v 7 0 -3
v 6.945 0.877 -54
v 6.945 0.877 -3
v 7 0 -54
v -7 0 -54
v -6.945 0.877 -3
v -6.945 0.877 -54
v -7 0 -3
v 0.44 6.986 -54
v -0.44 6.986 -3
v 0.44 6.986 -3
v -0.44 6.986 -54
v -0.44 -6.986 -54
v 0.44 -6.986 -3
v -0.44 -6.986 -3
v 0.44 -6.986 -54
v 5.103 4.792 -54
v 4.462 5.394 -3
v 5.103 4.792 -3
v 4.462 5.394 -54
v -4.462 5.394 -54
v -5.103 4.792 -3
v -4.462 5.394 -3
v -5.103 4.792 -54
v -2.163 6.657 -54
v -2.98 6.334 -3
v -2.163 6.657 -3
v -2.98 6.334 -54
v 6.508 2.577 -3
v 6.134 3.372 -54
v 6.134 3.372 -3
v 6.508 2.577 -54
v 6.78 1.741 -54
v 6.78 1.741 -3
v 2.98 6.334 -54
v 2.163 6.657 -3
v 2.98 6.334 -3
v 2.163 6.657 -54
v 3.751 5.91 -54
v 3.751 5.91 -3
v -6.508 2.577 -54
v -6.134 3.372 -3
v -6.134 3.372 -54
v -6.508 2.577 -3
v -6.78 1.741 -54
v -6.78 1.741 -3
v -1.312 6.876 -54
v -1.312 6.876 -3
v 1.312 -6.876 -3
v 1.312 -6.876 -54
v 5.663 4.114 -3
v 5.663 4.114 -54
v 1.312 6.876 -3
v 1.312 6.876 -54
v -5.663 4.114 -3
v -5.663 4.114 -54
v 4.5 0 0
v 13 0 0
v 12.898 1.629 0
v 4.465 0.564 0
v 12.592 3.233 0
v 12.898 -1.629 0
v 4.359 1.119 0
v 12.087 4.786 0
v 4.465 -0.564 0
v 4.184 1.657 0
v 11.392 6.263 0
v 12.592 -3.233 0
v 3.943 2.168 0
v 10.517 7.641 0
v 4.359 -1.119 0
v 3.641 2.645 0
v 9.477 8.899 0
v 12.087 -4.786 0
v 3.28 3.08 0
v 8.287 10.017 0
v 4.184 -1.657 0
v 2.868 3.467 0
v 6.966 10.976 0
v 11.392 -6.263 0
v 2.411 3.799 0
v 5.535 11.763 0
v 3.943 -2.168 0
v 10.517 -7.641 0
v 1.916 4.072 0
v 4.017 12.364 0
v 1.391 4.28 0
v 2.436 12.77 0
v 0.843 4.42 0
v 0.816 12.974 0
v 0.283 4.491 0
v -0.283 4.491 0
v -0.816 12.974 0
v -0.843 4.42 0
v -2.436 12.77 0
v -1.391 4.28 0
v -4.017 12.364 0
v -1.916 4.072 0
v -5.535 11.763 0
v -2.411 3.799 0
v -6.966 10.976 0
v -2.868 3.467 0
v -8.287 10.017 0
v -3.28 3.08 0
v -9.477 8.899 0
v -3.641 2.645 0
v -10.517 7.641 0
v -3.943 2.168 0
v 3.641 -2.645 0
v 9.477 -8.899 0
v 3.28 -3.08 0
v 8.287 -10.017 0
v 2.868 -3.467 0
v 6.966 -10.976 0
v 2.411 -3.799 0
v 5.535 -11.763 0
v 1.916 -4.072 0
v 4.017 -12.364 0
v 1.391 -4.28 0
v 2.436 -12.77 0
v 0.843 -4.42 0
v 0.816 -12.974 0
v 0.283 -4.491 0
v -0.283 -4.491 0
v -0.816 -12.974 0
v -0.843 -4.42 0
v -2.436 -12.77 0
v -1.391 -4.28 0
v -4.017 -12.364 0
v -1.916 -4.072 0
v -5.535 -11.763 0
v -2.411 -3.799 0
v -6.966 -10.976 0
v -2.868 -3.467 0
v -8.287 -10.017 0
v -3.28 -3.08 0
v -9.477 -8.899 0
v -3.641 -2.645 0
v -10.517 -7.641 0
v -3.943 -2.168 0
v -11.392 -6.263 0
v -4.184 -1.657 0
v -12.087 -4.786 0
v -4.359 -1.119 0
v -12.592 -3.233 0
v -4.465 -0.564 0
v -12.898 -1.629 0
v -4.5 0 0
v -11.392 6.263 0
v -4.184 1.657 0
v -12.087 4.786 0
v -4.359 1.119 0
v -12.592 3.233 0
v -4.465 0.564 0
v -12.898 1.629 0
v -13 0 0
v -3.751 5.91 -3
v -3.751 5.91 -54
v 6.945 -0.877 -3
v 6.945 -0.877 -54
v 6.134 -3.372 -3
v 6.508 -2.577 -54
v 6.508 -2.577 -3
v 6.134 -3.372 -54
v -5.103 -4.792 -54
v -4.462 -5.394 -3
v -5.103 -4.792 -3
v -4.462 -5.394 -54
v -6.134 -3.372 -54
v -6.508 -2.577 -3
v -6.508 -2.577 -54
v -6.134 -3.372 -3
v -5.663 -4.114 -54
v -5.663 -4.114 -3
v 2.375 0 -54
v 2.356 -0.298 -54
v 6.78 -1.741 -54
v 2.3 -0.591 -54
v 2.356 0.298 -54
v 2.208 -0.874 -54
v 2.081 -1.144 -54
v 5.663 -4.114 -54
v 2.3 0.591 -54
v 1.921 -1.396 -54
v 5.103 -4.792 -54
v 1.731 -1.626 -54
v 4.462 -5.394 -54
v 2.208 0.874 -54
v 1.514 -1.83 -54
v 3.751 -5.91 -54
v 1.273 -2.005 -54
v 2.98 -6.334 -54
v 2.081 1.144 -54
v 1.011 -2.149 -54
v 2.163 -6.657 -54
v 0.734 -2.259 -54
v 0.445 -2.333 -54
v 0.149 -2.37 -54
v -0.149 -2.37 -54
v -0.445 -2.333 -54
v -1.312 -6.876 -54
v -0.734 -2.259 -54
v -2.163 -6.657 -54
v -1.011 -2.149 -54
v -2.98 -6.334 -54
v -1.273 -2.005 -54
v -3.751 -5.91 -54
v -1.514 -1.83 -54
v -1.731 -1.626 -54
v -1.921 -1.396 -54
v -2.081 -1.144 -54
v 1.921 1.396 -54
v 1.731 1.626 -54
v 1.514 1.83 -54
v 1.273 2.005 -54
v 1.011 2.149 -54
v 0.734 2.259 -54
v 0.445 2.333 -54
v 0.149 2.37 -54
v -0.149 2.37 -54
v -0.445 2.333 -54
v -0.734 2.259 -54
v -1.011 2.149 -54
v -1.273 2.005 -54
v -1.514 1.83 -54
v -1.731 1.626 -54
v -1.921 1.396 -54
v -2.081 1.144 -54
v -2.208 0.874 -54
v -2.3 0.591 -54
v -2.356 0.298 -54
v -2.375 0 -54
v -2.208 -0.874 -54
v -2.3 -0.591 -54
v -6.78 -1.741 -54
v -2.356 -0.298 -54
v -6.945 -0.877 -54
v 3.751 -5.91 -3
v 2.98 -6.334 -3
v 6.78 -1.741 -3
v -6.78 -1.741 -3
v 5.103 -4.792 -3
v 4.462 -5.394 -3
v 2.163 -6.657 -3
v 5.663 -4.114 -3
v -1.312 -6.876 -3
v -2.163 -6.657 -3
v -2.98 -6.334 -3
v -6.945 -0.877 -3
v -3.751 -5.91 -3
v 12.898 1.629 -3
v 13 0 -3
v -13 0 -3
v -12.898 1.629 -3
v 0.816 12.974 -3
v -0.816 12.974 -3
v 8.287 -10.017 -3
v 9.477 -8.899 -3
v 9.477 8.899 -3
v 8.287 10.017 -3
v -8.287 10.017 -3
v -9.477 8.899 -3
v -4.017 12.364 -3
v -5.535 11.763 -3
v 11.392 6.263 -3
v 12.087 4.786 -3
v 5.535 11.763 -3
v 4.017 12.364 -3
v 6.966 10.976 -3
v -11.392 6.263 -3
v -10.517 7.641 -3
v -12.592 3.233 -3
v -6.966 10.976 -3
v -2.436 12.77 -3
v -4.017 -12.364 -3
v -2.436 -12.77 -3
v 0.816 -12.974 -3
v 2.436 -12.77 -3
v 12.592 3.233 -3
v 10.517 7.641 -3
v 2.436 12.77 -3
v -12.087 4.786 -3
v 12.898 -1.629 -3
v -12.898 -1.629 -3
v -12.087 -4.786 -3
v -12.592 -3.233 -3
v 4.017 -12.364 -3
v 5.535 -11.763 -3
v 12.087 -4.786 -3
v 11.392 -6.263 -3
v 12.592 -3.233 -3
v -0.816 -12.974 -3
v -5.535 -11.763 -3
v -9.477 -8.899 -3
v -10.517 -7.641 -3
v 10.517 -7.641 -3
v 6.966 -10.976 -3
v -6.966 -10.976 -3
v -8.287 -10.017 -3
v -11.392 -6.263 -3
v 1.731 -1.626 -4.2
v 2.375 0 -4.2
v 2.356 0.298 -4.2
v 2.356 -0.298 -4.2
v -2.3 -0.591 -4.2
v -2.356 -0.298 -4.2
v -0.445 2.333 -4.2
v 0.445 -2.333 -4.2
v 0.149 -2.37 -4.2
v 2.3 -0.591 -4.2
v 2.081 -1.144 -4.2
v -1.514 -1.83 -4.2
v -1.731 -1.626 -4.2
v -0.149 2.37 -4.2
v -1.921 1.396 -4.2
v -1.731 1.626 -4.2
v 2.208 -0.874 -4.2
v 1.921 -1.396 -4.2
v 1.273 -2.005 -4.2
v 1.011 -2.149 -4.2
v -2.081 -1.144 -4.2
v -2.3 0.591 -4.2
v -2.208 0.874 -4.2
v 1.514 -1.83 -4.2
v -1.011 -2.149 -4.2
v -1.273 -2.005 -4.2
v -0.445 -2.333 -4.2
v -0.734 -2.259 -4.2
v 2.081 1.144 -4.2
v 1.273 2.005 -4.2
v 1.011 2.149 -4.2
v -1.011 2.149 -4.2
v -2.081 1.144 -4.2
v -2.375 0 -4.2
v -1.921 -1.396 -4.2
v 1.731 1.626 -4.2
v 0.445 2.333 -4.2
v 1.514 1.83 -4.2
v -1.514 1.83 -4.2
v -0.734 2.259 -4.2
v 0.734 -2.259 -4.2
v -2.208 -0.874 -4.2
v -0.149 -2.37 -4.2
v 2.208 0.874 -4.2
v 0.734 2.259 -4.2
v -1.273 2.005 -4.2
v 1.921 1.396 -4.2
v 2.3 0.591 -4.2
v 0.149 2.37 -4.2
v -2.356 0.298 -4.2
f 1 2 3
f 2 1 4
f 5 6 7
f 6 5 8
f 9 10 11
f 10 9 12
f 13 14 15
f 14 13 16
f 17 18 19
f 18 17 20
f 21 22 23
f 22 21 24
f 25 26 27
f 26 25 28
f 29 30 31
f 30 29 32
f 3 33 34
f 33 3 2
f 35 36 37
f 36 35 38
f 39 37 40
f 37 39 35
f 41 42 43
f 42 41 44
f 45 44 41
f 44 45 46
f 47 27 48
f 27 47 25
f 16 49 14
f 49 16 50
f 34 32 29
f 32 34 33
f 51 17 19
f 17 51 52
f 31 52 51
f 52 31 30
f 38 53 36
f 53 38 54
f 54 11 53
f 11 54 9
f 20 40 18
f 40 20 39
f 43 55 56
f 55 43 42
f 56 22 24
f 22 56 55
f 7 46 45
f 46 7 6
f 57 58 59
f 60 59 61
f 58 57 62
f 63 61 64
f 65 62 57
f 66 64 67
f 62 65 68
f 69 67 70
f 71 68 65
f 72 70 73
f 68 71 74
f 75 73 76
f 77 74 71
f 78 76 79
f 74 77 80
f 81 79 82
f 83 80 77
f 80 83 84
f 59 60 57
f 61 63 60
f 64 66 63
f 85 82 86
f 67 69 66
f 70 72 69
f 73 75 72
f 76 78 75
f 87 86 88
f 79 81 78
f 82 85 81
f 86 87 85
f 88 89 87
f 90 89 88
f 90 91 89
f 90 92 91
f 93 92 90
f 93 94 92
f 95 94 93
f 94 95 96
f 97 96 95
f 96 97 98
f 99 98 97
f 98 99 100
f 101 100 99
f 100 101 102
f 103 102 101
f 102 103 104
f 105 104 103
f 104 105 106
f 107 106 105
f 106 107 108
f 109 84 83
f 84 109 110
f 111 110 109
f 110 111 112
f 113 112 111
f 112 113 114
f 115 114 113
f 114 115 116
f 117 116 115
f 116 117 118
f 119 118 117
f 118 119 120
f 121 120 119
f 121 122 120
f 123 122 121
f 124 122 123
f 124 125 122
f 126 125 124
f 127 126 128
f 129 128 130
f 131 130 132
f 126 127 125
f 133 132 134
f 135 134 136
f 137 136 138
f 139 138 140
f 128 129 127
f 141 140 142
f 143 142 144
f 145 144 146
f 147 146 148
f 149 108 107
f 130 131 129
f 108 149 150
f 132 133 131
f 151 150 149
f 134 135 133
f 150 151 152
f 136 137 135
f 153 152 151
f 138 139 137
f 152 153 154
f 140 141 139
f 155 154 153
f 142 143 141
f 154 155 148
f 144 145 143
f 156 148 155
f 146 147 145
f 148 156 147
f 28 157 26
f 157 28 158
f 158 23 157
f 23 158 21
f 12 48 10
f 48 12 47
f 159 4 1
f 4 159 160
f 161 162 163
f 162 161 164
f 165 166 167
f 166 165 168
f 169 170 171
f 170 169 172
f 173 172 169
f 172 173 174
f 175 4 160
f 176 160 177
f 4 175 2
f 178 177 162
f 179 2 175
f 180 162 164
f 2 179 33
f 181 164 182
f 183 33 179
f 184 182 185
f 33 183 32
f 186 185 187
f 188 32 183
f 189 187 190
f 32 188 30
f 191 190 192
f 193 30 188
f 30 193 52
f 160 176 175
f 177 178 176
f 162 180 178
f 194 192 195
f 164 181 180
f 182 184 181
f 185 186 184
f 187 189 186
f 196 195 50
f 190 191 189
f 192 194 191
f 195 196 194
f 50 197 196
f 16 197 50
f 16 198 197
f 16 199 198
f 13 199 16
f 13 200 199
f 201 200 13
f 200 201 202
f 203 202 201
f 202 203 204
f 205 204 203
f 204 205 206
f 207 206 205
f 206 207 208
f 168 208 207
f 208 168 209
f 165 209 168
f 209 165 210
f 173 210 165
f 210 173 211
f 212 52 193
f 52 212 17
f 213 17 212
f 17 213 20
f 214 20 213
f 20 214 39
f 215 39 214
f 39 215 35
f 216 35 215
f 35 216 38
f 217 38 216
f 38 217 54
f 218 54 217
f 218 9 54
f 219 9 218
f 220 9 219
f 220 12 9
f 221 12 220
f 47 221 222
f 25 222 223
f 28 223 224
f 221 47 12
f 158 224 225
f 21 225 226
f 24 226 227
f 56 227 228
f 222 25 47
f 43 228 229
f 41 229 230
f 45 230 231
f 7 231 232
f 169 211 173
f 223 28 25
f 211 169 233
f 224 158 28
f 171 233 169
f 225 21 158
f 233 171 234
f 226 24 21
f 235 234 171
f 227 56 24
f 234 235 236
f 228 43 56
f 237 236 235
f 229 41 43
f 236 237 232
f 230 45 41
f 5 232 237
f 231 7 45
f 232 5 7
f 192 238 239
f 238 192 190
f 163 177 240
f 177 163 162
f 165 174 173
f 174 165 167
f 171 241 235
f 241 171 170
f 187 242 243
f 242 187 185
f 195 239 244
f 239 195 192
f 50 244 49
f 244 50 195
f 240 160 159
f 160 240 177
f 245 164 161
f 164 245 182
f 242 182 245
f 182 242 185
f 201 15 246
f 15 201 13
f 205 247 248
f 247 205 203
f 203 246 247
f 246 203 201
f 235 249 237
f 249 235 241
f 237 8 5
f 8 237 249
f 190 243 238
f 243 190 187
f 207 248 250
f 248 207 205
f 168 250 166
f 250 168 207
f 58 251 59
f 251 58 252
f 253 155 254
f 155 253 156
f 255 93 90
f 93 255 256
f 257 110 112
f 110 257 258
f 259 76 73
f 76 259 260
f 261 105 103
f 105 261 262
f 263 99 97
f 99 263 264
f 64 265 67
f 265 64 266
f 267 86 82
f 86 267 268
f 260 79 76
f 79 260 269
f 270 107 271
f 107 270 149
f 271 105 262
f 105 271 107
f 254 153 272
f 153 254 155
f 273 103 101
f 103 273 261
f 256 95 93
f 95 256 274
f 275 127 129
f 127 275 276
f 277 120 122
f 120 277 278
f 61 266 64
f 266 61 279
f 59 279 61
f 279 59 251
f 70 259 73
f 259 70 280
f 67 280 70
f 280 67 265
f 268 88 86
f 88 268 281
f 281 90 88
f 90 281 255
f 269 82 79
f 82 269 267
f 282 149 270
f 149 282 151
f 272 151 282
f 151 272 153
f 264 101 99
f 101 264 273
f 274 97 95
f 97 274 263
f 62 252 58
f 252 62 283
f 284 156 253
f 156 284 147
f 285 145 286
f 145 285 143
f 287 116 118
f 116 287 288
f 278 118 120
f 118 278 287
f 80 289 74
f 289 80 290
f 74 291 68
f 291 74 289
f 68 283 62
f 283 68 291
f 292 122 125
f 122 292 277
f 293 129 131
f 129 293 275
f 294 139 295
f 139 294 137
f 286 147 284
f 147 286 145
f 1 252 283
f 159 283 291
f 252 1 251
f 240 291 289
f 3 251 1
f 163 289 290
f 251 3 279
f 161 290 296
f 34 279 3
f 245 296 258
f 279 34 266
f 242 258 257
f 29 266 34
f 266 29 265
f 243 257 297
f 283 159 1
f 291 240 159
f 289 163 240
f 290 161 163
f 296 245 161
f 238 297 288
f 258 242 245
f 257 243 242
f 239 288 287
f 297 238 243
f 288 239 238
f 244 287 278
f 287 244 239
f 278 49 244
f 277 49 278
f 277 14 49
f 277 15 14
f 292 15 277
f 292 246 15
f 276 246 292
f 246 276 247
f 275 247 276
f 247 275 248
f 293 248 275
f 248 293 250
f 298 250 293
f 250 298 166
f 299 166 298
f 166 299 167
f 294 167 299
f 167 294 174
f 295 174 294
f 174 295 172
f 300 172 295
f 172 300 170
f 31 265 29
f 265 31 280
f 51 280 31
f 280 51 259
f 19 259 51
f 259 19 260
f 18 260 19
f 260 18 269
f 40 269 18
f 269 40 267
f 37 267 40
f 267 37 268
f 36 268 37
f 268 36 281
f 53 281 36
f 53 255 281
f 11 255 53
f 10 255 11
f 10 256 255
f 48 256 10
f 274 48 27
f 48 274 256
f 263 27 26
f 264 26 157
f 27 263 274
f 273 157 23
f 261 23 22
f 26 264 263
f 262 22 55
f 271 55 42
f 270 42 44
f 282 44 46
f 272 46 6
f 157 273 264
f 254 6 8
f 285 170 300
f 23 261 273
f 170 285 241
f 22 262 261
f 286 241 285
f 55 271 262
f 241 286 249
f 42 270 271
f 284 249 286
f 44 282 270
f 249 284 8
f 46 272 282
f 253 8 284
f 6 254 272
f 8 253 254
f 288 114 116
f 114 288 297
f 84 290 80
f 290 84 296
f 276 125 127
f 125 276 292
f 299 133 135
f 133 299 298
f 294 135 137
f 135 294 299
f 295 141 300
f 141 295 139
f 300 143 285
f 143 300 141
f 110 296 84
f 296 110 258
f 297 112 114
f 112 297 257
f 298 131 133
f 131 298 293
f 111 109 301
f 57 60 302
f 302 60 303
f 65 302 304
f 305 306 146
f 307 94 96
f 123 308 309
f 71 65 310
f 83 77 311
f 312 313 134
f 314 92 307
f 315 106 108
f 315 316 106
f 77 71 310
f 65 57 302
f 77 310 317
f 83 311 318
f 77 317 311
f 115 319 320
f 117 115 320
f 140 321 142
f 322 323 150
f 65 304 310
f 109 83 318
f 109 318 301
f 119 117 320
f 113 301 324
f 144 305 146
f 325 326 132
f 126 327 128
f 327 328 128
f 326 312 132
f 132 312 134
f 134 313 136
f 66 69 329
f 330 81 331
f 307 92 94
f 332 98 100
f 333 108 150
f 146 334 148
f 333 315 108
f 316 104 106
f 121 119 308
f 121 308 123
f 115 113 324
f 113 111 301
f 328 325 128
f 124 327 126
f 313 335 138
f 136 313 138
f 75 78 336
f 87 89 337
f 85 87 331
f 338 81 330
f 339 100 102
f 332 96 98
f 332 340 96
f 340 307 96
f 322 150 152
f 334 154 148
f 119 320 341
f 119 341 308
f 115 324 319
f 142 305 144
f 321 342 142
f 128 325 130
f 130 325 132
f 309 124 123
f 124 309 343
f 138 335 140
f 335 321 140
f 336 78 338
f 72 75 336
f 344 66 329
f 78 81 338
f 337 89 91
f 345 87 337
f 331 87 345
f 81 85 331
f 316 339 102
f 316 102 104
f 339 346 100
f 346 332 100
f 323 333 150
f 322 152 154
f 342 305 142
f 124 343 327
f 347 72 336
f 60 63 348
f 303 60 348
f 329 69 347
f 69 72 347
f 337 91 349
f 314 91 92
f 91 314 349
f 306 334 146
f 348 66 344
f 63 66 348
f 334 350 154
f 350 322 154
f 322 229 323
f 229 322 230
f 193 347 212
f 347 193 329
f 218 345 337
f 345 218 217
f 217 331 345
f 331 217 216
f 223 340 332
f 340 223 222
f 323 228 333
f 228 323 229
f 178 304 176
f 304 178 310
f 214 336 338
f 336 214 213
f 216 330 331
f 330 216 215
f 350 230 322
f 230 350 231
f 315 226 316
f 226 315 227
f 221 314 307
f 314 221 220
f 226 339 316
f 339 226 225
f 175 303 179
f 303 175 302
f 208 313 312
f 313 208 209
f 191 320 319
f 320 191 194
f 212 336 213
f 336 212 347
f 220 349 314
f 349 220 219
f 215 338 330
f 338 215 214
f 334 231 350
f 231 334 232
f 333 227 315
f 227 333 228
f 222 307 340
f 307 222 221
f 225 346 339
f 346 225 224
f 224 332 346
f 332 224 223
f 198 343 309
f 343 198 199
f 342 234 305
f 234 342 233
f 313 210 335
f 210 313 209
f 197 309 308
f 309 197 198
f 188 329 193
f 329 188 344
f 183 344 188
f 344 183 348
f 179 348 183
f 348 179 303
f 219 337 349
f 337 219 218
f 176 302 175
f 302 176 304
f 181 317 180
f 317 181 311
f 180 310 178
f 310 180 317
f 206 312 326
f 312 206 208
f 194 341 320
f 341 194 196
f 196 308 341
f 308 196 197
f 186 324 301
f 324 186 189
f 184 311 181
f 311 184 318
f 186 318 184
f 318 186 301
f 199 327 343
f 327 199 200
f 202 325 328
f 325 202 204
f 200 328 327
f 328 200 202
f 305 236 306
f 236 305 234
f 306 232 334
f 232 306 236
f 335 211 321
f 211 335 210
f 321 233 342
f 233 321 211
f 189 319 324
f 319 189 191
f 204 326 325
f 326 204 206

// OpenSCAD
$fn = 50;


difference() {
	union() {
		translate(v = [0, 0, -54.0000000000]) {
			cylinder(h = 54, r = 7.0000000000);
		}
		translate(v = [0, 0, -3.0000000000]) {
			cylinder(h = 3, r = 13.0000000000);
		}
	}
	union() {
		translate(v = [0, 0, 0]) {
			rotate(a = [0, 0, 0]) {
				difference() {
					union() {
						#translate(v = [0, 0, -54.0000000000]) {
							cylinder(h = 54, r = 2.2500000000);
						}
						#translate(v = [0, 0, -4.2000000000]) {
							cylinder(h = 4.2000000000, r1 = 2.3750000000, r2 = 4.5000000000);
						}
						#translate(v = [0, 0, -54.0000000000]) {
							cylinder(h = 54, r = 2.3750000000);
						}
						#translate(v = [0, 0, -54.0000000000]) {
							cylinder(h = 54, r = 2.2500000000);
						}
					}
					union();
				}
			}
		}
	}
}
